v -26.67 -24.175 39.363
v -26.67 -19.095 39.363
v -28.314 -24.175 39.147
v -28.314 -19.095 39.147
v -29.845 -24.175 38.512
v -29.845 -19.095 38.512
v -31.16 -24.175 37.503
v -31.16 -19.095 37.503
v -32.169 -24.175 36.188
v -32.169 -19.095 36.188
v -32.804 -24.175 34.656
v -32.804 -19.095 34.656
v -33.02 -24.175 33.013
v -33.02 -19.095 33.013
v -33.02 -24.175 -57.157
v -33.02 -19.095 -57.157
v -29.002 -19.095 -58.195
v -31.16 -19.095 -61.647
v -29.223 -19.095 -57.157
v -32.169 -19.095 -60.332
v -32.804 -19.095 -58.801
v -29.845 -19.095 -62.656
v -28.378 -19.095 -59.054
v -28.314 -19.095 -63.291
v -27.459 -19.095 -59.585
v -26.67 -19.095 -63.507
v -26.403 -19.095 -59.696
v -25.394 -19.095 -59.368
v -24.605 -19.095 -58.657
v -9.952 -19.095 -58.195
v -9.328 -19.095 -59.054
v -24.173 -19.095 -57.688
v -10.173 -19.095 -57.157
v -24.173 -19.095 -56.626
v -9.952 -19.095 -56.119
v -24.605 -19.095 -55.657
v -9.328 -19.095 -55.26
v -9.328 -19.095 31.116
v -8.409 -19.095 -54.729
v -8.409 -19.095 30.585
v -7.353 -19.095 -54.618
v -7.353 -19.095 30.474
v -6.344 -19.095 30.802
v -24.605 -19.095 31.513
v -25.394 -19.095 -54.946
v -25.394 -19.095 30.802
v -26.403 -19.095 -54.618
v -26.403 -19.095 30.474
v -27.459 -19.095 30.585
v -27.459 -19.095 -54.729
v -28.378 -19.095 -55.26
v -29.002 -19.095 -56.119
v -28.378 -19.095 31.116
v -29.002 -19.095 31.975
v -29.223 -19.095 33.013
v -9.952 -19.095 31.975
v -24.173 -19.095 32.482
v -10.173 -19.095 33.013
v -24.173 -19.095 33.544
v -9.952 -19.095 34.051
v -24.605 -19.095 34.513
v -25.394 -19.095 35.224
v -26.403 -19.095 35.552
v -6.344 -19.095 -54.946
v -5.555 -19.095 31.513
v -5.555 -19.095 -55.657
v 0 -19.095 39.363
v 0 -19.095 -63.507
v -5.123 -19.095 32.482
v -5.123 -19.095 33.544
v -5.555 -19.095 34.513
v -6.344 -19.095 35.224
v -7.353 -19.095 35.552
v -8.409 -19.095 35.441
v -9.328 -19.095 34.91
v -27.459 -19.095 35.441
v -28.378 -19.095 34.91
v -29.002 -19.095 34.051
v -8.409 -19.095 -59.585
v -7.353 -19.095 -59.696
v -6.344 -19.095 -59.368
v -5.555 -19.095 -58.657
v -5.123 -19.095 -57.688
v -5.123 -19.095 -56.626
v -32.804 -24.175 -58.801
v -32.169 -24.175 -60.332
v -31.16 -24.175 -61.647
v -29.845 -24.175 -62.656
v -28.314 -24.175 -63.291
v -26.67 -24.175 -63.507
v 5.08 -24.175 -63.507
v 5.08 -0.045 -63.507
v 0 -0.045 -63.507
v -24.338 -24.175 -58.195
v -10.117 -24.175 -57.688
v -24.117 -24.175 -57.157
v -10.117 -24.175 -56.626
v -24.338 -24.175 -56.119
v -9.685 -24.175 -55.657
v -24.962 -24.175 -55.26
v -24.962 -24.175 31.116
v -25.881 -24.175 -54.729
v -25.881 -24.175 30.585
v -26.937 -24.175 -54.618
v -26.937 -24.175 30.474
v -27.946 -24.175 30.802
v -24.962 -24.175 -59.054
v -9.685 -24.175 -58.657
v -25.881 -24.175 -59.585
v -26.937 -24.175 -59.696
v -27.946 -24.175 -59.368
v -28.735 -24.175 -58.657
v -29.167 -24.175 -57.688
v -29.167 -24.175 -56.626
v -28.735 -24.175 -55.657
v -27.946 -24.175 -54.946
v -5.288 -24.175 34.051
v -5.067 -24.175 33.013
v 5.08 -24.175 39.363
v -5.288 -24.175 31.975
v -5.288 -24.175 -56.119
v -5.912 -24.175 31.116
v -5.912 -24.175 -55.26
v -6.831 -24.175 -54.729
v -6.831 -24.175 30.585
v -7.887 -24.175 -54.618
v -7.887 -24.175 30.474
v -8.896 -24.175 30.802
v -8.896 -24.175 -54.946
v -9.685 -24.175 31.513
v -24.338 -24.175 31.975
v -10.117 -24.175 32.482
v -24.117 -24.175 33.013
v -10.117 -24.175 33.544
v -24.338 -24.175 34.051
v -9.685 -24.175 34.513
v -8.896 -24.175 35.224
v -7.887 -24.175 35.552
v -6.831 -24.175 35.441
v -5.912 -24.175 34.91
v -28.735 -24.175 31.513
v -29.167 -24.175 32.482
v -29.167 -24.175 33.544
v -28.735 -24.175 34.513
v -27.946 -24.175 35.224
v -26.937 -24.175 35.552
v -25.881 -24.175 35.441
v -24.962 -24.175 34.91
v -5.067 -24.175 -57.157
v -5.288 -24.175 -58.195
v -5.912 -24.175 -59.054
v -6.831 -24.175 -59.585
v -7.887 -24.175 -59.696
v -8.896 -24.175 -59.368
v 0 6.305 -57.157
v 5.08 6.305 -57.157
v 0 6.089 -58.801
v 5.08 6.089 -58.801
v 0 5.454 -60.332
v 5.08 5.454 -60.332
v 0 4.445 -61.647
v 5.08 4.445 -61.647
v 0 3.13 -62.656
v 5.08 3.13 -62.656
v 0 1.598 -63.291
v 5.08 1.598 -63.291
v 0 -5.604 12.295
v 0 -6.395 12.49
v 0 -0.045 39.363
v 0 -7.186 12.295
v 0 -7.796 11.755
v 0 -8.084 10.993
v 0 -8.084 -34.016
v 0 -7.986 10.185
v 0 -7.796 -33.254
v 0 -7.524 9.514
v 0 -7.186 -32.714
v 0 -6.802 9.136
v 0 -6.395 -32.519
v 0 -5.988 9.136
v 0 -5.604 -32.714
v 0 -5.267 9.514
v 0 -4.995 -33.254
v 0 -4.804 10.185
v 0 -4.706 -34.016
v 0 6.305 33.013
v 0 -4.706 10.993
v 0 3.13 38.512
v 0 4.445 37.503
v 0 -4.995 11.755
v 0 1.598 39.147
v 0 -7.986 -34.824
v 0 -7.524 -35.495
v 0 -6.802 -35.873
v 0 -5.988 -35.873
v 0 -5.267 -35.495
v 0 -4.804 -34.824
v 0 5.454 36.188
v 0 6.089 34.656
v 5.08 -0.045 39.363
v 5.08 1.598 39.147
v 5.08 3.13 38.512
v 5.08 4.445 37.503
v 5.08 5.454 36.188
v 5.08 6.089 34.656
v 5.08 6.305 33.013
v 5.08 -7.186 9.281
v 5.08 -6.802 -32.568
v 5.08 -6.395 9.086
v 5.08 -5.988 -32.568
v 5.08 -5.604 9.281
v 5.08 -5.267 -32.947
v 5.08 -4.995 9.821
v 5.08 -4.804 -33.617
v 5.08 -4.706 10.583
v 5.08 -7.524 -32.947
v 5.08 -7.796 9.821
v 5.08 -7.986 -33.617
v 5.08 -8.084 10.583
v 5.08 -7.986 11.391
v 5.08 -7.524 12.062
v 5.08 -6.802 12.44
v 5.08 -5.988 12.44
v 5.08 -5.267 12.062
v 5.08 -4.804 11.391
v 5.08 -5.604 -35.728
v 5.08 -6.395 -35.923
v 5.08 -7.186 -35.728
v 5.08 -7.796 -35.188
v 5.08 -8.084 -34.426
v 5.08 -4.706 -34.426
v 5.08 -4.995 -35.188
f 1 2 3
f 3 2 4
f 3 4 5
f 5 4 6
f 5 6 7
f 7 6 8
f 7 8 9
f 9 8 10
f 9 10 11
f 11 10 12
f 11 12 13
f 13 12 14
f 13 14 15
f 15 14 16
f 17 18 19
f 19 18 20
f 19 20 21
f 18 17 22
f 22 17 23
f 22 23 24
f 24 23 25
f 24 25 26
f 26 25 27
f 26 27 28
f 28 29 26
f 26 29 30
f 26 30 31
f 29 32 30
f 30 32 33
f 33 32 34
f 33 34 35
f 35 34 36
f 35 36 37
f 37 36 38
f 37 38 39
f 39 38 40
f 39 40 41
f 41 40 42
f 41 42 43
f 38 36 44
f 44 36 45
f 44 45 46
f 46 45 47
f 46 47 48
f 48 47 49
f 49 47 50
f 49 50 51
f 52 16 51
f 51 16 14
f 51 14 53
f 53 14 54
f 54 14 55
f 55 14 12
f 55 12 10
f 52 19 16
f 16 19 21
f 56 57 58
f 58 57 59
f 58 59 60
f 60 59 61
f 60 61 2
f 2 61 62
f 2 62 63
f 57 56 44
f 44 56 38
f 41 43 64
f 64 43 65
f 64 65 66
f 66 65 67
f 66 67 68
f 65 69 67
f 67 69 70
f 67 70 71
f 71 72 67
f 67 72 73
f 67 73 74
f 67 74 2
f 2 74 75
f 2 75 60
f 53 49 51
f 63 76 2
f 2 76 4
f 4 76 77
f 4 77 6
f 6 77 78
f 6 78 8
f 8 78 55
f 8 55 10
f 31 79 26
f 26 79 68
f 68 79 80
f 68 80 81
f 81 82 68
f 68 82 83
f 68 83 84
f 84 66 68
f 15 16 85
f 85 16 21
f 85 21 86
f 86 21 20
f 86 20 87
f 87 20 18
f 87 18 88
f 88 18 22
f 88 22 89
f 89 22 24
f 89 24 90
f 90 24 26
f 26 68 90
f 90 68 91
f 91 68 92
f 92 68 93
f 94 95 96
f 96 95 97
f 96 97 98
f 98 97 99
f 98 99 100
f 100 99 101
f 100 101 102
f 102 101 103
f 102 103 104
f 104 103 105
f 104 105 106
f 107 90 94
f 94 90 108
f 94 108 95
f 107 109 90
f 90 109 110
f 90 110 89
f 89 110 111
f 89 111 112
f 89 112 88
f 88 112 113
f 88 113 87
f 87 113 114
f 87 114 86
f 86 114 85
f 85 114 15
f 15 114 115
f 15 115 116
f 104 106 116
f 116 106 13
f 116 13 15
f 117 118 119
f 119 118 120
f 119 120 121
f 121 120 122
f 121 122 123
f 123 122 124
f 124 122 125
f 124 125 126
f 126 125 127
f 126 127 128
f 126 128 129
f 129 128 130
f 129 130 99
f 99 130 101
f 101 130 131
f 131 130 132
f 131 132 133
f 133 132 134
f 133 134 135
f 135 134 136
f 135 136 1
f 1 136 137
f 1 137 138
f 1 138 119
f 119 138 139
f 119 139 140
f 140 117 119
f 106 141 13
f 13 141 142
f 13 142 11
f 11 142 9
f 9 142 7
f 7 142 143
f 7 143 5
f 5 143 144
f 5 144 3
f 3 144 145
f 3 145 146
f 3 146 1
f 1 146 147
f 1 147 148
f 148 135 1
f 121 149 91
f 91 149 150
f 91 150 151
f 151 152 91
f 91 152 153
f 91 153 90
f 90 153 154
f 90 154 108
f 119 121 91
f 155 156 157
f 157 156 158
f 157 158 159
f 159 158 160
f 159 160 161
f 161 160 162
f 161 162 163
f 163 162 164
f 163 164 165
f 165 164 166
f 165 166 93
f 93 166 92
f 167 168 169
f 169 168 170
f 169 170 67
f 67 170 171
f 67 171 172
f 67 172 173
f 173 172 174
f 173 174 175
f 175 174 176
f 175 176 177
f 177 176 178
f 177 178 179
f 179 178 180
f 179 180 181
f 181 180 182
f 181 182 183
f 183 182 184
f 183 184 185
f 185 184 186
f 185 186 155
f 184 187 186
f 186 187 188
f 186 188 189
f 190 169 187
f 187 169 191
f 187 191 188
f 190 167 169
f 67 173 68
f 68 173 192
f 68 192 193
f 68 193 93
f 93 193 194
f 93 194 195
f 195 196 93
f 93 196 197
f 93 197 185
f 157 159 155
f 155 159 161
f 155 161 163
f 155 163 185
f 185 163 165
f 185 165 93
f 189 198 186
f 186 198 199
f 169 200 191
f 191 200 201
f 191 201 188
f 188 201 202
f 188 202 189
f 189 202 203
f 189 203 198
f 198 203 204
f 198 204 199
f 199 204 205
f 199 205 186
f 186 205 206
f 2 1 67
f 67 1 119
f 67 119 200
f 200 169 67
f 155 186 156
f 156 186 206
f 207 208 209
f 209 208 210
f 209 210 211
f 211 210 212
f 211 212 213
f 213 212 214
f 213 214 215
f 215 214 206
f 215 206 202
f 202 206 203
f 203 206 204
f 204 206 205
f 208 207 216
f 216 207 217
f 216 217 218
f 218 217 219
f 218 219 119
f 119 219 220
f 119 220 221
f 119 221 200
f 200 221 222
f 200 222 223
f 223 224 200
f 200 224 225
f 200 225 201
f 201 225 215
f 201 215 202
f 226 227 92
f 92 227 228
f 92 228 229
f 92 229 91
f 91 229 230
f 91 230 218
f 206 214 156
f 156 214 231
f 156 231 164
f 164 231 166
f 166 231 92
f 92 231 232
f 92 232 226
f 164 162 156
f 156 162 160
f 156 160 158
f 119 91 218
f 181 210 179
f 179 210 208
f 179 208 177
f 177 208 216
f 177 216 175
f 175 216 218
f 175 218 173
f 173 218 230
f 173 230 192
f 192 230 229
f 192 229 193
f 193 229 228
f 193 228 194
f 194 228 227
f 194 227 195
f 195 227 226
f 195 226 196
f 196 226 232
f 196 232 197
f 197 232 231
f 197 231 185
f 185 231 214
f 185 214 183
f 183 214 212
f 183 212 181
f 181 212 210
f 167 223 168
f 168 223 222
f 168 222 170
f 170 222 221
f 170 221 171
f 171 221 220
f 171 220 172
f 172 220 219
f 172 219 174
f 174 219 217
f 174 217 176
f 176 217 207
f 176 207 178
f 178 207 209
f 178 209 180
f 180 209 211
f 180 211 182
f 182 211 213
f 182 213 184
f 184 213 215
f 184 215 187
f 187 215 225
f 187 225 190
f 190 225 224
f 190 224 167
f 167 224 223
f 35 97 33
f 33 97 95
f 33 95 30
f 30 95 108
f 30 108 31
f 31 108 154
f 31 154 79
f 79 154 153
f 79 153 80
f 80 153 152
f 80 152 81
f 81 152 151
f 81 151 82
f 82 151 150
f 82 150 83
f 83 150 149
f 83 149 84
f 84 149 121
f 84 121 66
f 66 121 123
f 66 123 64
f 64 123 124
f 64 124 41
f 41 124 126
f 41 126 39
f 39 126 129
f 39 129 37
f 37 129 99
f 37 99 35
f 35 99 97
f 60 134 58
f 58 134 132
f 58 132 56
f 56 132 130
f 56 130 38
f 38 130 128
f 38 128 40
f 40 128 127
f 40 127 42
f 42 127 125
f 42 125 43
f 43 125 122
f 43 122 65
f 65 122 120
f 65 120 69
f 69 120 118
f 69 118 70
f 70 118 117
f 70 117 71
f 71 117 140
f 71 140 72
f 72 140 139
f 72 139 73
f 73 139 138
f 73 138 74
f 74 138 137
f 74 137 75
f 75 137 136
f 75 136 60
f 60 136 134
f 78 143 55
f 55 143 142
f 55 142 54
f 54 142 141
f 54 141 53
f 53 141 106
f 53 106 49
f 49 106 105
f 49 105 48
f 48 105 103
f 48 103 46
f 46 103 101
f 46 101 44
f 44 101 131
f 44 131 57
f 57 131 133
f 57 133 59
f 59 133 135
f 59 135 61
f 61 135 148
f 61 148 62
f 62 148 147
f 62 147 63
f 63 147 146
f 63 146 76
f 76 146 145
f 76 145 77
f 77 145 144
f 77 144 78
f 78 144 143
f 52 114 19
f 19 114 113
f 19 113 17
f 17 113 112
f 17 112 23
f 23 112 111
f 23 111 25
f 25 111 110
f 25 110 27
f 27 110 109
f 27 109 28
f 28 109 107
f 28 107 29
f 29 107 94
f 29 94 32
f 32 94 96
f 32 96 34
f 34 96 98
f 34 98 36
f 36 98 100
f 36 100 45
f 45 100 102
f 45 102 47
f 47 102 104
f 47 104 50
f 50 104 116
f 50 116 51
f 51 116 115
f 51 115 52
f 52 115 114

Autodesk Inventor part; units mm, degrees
ref_plane "YZ Plane" through (0, 0, 0) normal (1, 0, 0) x (0, 1, 0)
ref_plane "XZ Plane" through (0, 0, 0) normal (0, 1, 0) x (-1, 0, 0)
ref_plane "XY Plane" through (0, 0, 0) normal (0, 0, 1) x (1, 0, 0)
sketch "Sketch1" plane through (0, 0, 0) normal (1, 0, 0) x (0, 1, 0)
  line L0 (6.3049, 39.363) -> (-19.0951, 39.363)
  line L1 (-19.0951, 39.363) -> (-19.0951, -63.507)
  line L2 (-19.0951, -63.507) -> (6.3049, -63.507)
  line L3 (6.3049, -63.507) -> (6.3049, 39.363)
  point P0 (0, 0)
  dimension "d0" = 102.87
  dimension "d1" = 25.4
extrude "Extrusion1" add sketch "Sketch1" along normal blind 5.08
fillet "Fillet1" radius 6.35 2 edges at (2.54, 6.3049, 39.363) (2.54, 6.3049, -63.507)
sketch "Sketch7" plane through (0, -19.0951, 39.363) normal (0, 0, 1) x (1, 0, 0)
  line L0 (0, 0) -> (5.08, 0)
  line L1 (5.08, 0) -> (5.08, -5.08)
  line L2 (5.08, -5.08) -> (-33.02, -5.08)
  line L3 (-33.02, -5.08) -> (-33.02, 0)
  line L4 (-33.02, 0) -> (0, 0)
  line L5 (0, 0) -> (0, 0)
  line L6 (0, 0) -> (5.08, 0) projected
  line L7 (0, 19.05) -> (0, 0) projected
  point P0 (0, 19.0951)
  dimension "d51" = 5.08
  dimension "d52" = 5.08
  dimension "d53" = 90
  dimension "d54" = 5.08
  dimension "d55" = 38.1
  dimension "d56" = 0
  dimension "d57" = 0
extrude "Extrusion4" add sketch "Sketch7" against normal blind 102.87
fillet "Fillet2" radius 6.35 2 edges at (-33.02, -21.6351, -63.507) (-33.02, -21.6351, 39.363)
sketch "Sketch15" plane through (5.08, 0, 0) normal (1, 0, 0) x (0, 0, -1)
  line L0 (-39.363, -0.0451) -> (-39.363, -24.1751) projected
  line L1 (63.507, -0.0451) -> (63.507, -24.1751) projected
  line L2 (57.157, 6.3049) -> (-33.013, 6.3049) projected
  point P0 (0, 0)
  point P1 (-10.788, -6.3951)
  point P2 (34.2208, -6.3951)
  dimension "d143" = 0
  dimension "d144" = 45.0088
  dimension "d145" = 28.575
  dimension "d146" = 29.2862
  dimension "d147" = 12.7
hole "Hole7" at (5.08, -6.3951, 10.788) at (5.08, -6.3951, -34.2208) direction (-1, 0, 0) diameter 3.4036 depth 25.4 tip angle 118 clearance for "Flat Head Machine Screw" size "M3" standard "Ansi Metric M Profile"
sketch "Sketch16" plane through (5.08, -24.1751, -63.507) normal (0, -1, 0) x (1, 0, 0)
  line L0 (0, 102.87) -> (0, 0) projected
  line L1 (0, 102.87) -> (-31.75, 102.87) projected
  line L2 (-38.1, 96.52) -> (-38.1, 6.35) projected
  line L3 (0, 0) -> (-31.75, 0) projected
  point P0 (-5.08, 63.507)
  point P1 (-12.7, 96.52)
  point P2 (-31.75, 96.52)
  point P3 (-31.75, 6.35)
  point P4 (-12.7, 6.35)
  dimension "d155" = 0
  dimension "d156" = 0
  dimension "d157" = 0
  dimension "d158" = 0
  dimension "d159" = 12.7
  dimension "d160" = 6.35
  dimension "d161" = 6.35
  dimension "d162" = 6.35
hole "Hole8" at (-7.62, -24.1751, 33.013) at (-26.67, -24.1751, 33.013) at (-26.67, -24.1751, -57.157) at (-7.62, -24.1751, -57.157) direction (0, 1, 0) diameter 5.1054 depth 25.4 tip angle 118 clearance for "Flat Head Machine Screw (82)" size "#10" standard "Ansi Unified Screw Threads"
properties part number "Realsense"
